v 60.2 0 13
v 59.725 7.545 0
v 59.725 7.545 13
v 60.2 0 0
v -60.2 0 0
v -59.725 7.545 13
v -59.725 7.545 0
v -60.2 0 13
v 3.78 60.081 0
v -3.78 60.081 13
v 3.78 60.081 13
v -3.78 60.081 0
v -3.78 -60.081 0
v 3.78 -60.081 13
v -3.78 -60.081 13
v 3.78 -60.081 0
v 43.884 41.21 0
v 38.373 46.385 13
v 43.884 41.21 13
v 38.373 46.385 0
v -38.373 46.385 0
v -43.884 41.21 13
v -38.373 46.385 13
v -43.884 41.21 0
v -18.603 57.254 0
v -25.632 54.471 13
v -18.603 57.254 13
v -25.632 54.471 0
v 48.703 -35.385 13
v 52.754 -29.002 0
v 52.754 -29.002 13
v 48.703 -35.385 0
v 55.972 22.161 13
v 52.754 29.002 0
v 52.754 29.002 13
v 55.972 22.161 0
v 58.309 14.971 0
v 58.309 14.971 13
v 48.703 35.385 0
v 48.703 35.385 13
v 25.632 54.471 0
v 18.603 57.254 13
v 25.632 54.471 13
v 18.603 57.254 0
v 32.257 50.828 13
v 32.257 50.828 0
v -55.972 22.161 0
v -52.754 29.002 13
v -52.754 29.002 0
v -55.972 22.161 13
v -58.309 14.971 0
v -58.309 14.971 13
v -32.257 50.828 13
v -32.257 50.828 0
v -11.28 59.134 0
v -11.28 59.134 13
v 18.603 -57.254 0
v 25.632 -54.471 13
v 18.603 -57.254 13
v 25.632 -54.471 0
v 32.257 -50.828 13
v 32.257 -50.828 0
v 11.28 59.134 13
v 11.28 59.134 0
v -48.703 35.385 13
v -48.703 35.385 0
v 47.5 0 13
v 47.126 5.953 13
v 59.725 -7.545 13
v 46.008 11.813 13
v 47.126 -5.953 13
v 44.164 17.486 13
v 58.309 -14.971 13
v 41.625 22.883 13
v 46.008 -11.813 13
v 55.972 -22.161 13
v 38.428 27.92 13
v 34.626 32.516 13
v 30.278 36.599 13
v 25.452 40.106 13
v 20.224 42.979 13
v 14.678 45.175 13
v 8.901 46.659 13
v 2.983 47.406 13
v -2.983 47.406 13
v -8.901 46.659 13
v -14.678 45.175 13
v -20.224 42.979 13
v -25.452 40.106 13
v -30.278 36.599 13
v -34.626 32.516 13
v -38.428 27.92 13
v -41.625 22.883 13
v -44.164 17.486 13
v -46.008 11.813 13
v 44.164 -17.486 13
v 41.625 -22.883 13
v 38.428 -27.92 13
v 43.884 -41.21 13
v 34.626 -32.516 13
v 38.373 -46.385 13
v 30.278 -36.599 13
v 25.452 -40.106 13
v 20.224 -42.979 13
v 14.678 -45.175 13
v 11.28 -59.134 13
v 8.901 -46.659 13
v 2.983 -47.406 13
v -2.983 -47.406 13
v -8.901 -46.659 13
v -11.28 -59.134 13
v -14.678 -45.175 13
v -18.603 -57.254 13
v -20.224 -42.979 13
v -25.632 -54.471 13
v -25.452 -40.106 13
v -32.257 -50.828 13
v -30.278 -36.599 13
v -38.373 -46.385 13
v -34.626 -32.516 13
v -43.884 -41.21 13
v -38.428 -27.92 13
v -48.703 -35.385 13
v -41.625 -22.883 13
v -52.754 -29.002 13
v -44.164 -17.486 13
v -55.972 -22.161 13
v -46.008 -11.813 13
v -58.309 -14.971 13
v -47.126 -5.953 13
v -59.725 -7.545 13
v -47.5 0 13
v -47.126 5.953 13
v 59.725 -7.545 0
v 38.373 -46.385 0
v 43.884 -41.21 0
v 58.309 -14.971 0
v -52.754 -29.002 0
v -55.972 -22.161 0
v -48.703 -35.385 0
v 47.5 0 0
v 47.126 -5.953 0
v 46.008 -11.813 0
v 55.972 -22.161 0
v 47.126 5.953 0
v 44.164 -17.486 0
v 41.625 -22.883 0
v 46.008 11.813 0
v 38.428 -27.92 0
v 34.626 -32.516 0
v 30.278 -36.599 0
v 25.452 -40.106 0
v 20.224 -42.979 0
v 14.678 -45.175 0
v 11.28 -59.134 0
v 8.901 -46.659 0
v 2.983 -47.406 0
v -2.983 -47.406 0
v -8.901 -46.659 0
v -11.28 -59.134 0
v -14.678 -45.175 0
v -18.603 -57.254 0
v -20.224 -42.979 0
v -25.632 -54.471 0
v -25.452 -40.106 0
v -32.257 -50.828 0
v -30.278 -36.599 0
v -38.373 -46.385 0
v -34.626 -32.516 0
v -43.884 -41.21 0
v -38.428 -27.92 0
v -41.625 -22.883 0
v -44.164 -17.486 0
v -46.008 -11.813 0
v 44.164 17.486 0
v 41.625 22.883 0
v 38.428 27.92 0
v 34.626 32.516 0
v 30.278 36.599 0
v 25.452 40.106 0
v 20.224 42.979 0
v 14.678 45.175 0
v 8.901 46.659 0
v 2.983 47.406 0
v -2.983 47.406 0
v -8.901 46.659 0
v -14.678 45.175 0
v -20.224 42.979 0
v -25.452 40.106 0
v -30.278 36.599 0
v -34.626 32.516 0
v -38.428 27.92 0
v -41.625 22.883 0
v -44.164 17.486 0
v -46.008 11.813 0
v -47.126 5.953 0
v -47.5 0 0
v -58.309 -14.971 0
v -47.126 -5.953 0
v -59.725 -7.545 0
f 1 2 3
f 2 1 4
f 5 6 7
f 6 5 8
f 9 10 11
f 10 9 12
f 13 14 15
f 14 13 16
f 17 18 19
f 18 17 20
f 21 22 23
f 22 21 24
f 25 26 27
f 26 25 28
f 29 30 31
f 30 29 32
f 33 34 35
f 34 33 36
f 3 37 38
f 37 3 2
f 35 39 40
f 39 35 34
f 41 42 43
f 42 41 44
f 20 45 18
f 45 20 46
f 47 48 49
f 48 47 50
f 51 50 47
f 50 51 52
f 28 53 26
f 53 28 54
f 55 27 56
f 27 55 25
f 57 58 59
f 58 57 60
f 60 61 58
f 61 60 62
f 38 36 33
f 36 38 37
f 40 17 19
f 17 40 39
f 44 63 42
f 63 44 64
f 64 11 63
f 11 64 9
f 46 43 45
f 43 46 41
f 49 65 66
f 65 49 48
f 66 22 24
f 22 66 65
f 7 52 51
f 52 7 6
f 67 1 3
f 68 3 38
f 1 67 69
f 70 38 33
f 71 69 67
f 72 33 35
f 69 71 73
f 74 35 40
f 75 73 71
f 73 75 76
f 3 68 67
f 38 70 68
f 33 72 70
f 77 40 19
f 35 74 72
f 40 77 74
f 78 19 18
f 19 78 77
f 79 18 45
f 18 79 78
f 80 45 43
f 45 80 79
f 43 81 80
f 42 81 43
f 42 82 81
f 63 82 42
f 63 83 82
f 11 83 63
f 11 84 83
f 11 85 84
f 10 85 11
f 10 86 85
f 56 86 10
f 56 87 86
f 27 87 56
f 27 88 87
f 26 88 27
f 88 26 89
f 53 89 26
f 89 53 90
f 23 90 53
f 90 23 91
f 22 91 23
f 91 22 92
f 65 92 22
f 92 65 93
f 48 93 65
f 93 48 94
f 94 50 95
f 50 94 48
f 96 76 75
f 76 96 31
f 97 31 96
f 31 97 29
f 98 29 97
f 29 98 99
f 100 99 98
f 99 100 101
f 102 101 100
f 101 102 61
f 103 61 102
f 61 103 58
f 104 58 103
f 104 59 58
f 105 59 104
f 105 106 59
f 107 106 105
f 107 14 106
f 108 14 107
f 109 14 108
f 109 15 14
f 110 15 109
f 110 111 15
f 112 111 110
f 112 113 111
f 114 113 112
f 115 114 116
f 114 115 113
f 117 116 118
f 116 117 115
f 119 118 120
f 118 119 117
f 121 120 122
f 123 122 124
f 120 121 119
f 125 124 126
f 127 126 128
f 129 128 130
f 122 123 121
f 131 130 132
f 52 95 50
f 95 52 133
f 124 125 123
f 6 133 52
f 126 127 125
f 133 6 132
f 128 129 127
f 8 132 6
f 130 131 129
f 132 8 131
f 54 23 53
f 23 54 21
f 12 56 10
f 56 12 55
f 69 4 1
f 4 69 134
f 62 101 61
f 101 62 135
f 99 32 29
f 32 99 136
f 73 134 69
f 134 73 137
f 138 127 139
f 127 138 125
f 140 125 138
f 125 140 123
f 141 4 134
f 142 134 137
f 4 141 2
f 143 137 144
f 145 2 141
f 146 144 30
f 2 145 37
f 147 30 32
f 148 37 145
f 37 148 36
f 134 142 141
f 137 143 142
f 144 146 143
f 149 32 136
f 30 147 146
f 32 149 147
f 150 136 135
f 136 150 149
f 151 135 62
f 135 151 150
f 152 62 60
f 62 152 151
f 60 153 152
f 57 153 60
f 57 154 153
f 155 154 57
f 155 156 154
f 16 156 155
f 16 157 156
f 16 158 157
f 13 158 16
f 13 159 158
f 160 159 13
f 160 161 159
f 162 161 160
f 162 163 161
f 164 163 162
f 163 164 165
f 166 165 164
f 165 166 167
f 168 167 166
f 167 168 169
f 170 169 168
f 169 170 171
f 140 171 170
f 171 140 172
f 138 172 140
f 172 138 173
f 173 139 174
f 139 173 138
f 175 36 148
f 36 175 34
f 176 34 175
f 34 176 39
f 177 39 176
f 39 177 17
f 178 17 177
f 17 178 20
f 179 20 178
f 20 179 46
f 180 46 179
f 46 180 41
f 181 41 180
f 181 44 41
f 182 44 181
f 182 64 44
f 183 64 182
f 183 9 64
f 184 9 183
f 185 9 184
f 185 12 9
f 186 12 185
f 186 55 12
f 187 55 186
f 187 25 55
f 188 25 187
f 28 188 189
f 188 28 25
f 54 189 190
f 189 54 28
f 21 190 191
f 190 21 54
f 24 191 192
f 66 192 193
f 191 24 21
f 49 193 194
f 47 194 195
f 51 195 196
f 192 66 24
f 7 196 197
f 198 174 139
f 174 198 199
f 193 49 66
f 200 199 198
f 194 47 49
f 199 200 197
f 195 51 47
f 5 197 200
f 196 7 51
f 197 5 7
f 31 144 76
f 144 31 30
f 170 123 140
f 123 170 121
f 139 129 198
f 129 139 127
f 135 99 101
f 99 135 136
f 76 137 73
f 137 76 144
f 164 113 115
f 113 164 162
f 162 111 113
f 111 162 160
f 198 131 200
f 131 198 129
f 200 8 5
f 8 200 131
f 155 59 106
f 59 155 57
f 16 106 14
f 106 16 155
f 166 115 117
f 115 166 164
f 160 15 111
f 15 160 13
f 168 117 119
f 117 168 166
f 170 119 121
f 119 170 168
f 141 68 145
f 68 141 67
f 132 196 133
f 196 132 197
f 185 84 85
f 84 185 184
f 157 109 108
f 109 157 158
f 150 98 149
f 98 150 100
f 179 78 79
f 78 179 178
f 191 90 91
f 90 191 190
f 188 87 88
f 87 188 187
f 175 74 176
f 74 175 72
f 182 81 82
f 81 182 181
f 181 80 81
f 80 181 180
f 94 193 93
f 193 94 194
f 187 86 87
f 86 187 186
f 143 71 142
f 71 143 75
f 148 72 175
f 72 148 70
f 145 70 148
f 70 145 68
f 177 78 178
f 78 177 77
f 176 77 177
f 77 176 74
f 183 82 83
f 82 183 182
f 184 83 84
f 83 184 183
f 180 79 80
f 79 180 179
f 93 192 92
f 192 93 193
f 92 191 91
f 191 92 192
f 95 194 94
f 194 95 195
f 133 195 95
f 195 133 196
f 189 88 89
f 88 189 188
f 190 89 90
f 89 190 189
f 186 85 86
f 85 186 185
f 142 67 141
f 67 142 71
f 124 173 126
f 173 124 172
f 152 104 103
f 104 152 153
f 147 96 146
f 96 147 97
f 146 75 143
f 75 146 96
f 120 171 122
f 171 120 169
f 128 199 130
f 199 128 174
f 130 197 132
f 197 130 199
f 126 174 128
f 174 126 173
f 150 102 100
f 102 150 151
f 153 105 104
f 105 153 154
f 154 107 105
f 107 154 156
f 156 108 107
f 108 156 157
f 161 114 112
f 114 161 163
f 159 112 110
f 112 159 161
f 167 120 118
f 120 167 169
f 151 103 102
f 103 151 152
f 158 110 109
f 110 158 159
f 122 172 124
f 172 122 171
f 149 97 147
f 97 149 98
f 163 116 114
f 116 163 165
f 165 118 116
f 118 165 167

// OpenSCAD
$fn = 50;


difference() {
	union() {
		translate(v = [0, 0, 0]) {
			rotate(a = [0, 0, 0]) {
				cylinder(h = 13, r = 60.2000000000);
			}
		}
	}
	union() {
		translate(v = [0, 0, 0]) {
			rotate(a = [0, 0, 0]) {
				cylinder(h = 13, r = 47.5000000000);
			}
		}
	}
}
